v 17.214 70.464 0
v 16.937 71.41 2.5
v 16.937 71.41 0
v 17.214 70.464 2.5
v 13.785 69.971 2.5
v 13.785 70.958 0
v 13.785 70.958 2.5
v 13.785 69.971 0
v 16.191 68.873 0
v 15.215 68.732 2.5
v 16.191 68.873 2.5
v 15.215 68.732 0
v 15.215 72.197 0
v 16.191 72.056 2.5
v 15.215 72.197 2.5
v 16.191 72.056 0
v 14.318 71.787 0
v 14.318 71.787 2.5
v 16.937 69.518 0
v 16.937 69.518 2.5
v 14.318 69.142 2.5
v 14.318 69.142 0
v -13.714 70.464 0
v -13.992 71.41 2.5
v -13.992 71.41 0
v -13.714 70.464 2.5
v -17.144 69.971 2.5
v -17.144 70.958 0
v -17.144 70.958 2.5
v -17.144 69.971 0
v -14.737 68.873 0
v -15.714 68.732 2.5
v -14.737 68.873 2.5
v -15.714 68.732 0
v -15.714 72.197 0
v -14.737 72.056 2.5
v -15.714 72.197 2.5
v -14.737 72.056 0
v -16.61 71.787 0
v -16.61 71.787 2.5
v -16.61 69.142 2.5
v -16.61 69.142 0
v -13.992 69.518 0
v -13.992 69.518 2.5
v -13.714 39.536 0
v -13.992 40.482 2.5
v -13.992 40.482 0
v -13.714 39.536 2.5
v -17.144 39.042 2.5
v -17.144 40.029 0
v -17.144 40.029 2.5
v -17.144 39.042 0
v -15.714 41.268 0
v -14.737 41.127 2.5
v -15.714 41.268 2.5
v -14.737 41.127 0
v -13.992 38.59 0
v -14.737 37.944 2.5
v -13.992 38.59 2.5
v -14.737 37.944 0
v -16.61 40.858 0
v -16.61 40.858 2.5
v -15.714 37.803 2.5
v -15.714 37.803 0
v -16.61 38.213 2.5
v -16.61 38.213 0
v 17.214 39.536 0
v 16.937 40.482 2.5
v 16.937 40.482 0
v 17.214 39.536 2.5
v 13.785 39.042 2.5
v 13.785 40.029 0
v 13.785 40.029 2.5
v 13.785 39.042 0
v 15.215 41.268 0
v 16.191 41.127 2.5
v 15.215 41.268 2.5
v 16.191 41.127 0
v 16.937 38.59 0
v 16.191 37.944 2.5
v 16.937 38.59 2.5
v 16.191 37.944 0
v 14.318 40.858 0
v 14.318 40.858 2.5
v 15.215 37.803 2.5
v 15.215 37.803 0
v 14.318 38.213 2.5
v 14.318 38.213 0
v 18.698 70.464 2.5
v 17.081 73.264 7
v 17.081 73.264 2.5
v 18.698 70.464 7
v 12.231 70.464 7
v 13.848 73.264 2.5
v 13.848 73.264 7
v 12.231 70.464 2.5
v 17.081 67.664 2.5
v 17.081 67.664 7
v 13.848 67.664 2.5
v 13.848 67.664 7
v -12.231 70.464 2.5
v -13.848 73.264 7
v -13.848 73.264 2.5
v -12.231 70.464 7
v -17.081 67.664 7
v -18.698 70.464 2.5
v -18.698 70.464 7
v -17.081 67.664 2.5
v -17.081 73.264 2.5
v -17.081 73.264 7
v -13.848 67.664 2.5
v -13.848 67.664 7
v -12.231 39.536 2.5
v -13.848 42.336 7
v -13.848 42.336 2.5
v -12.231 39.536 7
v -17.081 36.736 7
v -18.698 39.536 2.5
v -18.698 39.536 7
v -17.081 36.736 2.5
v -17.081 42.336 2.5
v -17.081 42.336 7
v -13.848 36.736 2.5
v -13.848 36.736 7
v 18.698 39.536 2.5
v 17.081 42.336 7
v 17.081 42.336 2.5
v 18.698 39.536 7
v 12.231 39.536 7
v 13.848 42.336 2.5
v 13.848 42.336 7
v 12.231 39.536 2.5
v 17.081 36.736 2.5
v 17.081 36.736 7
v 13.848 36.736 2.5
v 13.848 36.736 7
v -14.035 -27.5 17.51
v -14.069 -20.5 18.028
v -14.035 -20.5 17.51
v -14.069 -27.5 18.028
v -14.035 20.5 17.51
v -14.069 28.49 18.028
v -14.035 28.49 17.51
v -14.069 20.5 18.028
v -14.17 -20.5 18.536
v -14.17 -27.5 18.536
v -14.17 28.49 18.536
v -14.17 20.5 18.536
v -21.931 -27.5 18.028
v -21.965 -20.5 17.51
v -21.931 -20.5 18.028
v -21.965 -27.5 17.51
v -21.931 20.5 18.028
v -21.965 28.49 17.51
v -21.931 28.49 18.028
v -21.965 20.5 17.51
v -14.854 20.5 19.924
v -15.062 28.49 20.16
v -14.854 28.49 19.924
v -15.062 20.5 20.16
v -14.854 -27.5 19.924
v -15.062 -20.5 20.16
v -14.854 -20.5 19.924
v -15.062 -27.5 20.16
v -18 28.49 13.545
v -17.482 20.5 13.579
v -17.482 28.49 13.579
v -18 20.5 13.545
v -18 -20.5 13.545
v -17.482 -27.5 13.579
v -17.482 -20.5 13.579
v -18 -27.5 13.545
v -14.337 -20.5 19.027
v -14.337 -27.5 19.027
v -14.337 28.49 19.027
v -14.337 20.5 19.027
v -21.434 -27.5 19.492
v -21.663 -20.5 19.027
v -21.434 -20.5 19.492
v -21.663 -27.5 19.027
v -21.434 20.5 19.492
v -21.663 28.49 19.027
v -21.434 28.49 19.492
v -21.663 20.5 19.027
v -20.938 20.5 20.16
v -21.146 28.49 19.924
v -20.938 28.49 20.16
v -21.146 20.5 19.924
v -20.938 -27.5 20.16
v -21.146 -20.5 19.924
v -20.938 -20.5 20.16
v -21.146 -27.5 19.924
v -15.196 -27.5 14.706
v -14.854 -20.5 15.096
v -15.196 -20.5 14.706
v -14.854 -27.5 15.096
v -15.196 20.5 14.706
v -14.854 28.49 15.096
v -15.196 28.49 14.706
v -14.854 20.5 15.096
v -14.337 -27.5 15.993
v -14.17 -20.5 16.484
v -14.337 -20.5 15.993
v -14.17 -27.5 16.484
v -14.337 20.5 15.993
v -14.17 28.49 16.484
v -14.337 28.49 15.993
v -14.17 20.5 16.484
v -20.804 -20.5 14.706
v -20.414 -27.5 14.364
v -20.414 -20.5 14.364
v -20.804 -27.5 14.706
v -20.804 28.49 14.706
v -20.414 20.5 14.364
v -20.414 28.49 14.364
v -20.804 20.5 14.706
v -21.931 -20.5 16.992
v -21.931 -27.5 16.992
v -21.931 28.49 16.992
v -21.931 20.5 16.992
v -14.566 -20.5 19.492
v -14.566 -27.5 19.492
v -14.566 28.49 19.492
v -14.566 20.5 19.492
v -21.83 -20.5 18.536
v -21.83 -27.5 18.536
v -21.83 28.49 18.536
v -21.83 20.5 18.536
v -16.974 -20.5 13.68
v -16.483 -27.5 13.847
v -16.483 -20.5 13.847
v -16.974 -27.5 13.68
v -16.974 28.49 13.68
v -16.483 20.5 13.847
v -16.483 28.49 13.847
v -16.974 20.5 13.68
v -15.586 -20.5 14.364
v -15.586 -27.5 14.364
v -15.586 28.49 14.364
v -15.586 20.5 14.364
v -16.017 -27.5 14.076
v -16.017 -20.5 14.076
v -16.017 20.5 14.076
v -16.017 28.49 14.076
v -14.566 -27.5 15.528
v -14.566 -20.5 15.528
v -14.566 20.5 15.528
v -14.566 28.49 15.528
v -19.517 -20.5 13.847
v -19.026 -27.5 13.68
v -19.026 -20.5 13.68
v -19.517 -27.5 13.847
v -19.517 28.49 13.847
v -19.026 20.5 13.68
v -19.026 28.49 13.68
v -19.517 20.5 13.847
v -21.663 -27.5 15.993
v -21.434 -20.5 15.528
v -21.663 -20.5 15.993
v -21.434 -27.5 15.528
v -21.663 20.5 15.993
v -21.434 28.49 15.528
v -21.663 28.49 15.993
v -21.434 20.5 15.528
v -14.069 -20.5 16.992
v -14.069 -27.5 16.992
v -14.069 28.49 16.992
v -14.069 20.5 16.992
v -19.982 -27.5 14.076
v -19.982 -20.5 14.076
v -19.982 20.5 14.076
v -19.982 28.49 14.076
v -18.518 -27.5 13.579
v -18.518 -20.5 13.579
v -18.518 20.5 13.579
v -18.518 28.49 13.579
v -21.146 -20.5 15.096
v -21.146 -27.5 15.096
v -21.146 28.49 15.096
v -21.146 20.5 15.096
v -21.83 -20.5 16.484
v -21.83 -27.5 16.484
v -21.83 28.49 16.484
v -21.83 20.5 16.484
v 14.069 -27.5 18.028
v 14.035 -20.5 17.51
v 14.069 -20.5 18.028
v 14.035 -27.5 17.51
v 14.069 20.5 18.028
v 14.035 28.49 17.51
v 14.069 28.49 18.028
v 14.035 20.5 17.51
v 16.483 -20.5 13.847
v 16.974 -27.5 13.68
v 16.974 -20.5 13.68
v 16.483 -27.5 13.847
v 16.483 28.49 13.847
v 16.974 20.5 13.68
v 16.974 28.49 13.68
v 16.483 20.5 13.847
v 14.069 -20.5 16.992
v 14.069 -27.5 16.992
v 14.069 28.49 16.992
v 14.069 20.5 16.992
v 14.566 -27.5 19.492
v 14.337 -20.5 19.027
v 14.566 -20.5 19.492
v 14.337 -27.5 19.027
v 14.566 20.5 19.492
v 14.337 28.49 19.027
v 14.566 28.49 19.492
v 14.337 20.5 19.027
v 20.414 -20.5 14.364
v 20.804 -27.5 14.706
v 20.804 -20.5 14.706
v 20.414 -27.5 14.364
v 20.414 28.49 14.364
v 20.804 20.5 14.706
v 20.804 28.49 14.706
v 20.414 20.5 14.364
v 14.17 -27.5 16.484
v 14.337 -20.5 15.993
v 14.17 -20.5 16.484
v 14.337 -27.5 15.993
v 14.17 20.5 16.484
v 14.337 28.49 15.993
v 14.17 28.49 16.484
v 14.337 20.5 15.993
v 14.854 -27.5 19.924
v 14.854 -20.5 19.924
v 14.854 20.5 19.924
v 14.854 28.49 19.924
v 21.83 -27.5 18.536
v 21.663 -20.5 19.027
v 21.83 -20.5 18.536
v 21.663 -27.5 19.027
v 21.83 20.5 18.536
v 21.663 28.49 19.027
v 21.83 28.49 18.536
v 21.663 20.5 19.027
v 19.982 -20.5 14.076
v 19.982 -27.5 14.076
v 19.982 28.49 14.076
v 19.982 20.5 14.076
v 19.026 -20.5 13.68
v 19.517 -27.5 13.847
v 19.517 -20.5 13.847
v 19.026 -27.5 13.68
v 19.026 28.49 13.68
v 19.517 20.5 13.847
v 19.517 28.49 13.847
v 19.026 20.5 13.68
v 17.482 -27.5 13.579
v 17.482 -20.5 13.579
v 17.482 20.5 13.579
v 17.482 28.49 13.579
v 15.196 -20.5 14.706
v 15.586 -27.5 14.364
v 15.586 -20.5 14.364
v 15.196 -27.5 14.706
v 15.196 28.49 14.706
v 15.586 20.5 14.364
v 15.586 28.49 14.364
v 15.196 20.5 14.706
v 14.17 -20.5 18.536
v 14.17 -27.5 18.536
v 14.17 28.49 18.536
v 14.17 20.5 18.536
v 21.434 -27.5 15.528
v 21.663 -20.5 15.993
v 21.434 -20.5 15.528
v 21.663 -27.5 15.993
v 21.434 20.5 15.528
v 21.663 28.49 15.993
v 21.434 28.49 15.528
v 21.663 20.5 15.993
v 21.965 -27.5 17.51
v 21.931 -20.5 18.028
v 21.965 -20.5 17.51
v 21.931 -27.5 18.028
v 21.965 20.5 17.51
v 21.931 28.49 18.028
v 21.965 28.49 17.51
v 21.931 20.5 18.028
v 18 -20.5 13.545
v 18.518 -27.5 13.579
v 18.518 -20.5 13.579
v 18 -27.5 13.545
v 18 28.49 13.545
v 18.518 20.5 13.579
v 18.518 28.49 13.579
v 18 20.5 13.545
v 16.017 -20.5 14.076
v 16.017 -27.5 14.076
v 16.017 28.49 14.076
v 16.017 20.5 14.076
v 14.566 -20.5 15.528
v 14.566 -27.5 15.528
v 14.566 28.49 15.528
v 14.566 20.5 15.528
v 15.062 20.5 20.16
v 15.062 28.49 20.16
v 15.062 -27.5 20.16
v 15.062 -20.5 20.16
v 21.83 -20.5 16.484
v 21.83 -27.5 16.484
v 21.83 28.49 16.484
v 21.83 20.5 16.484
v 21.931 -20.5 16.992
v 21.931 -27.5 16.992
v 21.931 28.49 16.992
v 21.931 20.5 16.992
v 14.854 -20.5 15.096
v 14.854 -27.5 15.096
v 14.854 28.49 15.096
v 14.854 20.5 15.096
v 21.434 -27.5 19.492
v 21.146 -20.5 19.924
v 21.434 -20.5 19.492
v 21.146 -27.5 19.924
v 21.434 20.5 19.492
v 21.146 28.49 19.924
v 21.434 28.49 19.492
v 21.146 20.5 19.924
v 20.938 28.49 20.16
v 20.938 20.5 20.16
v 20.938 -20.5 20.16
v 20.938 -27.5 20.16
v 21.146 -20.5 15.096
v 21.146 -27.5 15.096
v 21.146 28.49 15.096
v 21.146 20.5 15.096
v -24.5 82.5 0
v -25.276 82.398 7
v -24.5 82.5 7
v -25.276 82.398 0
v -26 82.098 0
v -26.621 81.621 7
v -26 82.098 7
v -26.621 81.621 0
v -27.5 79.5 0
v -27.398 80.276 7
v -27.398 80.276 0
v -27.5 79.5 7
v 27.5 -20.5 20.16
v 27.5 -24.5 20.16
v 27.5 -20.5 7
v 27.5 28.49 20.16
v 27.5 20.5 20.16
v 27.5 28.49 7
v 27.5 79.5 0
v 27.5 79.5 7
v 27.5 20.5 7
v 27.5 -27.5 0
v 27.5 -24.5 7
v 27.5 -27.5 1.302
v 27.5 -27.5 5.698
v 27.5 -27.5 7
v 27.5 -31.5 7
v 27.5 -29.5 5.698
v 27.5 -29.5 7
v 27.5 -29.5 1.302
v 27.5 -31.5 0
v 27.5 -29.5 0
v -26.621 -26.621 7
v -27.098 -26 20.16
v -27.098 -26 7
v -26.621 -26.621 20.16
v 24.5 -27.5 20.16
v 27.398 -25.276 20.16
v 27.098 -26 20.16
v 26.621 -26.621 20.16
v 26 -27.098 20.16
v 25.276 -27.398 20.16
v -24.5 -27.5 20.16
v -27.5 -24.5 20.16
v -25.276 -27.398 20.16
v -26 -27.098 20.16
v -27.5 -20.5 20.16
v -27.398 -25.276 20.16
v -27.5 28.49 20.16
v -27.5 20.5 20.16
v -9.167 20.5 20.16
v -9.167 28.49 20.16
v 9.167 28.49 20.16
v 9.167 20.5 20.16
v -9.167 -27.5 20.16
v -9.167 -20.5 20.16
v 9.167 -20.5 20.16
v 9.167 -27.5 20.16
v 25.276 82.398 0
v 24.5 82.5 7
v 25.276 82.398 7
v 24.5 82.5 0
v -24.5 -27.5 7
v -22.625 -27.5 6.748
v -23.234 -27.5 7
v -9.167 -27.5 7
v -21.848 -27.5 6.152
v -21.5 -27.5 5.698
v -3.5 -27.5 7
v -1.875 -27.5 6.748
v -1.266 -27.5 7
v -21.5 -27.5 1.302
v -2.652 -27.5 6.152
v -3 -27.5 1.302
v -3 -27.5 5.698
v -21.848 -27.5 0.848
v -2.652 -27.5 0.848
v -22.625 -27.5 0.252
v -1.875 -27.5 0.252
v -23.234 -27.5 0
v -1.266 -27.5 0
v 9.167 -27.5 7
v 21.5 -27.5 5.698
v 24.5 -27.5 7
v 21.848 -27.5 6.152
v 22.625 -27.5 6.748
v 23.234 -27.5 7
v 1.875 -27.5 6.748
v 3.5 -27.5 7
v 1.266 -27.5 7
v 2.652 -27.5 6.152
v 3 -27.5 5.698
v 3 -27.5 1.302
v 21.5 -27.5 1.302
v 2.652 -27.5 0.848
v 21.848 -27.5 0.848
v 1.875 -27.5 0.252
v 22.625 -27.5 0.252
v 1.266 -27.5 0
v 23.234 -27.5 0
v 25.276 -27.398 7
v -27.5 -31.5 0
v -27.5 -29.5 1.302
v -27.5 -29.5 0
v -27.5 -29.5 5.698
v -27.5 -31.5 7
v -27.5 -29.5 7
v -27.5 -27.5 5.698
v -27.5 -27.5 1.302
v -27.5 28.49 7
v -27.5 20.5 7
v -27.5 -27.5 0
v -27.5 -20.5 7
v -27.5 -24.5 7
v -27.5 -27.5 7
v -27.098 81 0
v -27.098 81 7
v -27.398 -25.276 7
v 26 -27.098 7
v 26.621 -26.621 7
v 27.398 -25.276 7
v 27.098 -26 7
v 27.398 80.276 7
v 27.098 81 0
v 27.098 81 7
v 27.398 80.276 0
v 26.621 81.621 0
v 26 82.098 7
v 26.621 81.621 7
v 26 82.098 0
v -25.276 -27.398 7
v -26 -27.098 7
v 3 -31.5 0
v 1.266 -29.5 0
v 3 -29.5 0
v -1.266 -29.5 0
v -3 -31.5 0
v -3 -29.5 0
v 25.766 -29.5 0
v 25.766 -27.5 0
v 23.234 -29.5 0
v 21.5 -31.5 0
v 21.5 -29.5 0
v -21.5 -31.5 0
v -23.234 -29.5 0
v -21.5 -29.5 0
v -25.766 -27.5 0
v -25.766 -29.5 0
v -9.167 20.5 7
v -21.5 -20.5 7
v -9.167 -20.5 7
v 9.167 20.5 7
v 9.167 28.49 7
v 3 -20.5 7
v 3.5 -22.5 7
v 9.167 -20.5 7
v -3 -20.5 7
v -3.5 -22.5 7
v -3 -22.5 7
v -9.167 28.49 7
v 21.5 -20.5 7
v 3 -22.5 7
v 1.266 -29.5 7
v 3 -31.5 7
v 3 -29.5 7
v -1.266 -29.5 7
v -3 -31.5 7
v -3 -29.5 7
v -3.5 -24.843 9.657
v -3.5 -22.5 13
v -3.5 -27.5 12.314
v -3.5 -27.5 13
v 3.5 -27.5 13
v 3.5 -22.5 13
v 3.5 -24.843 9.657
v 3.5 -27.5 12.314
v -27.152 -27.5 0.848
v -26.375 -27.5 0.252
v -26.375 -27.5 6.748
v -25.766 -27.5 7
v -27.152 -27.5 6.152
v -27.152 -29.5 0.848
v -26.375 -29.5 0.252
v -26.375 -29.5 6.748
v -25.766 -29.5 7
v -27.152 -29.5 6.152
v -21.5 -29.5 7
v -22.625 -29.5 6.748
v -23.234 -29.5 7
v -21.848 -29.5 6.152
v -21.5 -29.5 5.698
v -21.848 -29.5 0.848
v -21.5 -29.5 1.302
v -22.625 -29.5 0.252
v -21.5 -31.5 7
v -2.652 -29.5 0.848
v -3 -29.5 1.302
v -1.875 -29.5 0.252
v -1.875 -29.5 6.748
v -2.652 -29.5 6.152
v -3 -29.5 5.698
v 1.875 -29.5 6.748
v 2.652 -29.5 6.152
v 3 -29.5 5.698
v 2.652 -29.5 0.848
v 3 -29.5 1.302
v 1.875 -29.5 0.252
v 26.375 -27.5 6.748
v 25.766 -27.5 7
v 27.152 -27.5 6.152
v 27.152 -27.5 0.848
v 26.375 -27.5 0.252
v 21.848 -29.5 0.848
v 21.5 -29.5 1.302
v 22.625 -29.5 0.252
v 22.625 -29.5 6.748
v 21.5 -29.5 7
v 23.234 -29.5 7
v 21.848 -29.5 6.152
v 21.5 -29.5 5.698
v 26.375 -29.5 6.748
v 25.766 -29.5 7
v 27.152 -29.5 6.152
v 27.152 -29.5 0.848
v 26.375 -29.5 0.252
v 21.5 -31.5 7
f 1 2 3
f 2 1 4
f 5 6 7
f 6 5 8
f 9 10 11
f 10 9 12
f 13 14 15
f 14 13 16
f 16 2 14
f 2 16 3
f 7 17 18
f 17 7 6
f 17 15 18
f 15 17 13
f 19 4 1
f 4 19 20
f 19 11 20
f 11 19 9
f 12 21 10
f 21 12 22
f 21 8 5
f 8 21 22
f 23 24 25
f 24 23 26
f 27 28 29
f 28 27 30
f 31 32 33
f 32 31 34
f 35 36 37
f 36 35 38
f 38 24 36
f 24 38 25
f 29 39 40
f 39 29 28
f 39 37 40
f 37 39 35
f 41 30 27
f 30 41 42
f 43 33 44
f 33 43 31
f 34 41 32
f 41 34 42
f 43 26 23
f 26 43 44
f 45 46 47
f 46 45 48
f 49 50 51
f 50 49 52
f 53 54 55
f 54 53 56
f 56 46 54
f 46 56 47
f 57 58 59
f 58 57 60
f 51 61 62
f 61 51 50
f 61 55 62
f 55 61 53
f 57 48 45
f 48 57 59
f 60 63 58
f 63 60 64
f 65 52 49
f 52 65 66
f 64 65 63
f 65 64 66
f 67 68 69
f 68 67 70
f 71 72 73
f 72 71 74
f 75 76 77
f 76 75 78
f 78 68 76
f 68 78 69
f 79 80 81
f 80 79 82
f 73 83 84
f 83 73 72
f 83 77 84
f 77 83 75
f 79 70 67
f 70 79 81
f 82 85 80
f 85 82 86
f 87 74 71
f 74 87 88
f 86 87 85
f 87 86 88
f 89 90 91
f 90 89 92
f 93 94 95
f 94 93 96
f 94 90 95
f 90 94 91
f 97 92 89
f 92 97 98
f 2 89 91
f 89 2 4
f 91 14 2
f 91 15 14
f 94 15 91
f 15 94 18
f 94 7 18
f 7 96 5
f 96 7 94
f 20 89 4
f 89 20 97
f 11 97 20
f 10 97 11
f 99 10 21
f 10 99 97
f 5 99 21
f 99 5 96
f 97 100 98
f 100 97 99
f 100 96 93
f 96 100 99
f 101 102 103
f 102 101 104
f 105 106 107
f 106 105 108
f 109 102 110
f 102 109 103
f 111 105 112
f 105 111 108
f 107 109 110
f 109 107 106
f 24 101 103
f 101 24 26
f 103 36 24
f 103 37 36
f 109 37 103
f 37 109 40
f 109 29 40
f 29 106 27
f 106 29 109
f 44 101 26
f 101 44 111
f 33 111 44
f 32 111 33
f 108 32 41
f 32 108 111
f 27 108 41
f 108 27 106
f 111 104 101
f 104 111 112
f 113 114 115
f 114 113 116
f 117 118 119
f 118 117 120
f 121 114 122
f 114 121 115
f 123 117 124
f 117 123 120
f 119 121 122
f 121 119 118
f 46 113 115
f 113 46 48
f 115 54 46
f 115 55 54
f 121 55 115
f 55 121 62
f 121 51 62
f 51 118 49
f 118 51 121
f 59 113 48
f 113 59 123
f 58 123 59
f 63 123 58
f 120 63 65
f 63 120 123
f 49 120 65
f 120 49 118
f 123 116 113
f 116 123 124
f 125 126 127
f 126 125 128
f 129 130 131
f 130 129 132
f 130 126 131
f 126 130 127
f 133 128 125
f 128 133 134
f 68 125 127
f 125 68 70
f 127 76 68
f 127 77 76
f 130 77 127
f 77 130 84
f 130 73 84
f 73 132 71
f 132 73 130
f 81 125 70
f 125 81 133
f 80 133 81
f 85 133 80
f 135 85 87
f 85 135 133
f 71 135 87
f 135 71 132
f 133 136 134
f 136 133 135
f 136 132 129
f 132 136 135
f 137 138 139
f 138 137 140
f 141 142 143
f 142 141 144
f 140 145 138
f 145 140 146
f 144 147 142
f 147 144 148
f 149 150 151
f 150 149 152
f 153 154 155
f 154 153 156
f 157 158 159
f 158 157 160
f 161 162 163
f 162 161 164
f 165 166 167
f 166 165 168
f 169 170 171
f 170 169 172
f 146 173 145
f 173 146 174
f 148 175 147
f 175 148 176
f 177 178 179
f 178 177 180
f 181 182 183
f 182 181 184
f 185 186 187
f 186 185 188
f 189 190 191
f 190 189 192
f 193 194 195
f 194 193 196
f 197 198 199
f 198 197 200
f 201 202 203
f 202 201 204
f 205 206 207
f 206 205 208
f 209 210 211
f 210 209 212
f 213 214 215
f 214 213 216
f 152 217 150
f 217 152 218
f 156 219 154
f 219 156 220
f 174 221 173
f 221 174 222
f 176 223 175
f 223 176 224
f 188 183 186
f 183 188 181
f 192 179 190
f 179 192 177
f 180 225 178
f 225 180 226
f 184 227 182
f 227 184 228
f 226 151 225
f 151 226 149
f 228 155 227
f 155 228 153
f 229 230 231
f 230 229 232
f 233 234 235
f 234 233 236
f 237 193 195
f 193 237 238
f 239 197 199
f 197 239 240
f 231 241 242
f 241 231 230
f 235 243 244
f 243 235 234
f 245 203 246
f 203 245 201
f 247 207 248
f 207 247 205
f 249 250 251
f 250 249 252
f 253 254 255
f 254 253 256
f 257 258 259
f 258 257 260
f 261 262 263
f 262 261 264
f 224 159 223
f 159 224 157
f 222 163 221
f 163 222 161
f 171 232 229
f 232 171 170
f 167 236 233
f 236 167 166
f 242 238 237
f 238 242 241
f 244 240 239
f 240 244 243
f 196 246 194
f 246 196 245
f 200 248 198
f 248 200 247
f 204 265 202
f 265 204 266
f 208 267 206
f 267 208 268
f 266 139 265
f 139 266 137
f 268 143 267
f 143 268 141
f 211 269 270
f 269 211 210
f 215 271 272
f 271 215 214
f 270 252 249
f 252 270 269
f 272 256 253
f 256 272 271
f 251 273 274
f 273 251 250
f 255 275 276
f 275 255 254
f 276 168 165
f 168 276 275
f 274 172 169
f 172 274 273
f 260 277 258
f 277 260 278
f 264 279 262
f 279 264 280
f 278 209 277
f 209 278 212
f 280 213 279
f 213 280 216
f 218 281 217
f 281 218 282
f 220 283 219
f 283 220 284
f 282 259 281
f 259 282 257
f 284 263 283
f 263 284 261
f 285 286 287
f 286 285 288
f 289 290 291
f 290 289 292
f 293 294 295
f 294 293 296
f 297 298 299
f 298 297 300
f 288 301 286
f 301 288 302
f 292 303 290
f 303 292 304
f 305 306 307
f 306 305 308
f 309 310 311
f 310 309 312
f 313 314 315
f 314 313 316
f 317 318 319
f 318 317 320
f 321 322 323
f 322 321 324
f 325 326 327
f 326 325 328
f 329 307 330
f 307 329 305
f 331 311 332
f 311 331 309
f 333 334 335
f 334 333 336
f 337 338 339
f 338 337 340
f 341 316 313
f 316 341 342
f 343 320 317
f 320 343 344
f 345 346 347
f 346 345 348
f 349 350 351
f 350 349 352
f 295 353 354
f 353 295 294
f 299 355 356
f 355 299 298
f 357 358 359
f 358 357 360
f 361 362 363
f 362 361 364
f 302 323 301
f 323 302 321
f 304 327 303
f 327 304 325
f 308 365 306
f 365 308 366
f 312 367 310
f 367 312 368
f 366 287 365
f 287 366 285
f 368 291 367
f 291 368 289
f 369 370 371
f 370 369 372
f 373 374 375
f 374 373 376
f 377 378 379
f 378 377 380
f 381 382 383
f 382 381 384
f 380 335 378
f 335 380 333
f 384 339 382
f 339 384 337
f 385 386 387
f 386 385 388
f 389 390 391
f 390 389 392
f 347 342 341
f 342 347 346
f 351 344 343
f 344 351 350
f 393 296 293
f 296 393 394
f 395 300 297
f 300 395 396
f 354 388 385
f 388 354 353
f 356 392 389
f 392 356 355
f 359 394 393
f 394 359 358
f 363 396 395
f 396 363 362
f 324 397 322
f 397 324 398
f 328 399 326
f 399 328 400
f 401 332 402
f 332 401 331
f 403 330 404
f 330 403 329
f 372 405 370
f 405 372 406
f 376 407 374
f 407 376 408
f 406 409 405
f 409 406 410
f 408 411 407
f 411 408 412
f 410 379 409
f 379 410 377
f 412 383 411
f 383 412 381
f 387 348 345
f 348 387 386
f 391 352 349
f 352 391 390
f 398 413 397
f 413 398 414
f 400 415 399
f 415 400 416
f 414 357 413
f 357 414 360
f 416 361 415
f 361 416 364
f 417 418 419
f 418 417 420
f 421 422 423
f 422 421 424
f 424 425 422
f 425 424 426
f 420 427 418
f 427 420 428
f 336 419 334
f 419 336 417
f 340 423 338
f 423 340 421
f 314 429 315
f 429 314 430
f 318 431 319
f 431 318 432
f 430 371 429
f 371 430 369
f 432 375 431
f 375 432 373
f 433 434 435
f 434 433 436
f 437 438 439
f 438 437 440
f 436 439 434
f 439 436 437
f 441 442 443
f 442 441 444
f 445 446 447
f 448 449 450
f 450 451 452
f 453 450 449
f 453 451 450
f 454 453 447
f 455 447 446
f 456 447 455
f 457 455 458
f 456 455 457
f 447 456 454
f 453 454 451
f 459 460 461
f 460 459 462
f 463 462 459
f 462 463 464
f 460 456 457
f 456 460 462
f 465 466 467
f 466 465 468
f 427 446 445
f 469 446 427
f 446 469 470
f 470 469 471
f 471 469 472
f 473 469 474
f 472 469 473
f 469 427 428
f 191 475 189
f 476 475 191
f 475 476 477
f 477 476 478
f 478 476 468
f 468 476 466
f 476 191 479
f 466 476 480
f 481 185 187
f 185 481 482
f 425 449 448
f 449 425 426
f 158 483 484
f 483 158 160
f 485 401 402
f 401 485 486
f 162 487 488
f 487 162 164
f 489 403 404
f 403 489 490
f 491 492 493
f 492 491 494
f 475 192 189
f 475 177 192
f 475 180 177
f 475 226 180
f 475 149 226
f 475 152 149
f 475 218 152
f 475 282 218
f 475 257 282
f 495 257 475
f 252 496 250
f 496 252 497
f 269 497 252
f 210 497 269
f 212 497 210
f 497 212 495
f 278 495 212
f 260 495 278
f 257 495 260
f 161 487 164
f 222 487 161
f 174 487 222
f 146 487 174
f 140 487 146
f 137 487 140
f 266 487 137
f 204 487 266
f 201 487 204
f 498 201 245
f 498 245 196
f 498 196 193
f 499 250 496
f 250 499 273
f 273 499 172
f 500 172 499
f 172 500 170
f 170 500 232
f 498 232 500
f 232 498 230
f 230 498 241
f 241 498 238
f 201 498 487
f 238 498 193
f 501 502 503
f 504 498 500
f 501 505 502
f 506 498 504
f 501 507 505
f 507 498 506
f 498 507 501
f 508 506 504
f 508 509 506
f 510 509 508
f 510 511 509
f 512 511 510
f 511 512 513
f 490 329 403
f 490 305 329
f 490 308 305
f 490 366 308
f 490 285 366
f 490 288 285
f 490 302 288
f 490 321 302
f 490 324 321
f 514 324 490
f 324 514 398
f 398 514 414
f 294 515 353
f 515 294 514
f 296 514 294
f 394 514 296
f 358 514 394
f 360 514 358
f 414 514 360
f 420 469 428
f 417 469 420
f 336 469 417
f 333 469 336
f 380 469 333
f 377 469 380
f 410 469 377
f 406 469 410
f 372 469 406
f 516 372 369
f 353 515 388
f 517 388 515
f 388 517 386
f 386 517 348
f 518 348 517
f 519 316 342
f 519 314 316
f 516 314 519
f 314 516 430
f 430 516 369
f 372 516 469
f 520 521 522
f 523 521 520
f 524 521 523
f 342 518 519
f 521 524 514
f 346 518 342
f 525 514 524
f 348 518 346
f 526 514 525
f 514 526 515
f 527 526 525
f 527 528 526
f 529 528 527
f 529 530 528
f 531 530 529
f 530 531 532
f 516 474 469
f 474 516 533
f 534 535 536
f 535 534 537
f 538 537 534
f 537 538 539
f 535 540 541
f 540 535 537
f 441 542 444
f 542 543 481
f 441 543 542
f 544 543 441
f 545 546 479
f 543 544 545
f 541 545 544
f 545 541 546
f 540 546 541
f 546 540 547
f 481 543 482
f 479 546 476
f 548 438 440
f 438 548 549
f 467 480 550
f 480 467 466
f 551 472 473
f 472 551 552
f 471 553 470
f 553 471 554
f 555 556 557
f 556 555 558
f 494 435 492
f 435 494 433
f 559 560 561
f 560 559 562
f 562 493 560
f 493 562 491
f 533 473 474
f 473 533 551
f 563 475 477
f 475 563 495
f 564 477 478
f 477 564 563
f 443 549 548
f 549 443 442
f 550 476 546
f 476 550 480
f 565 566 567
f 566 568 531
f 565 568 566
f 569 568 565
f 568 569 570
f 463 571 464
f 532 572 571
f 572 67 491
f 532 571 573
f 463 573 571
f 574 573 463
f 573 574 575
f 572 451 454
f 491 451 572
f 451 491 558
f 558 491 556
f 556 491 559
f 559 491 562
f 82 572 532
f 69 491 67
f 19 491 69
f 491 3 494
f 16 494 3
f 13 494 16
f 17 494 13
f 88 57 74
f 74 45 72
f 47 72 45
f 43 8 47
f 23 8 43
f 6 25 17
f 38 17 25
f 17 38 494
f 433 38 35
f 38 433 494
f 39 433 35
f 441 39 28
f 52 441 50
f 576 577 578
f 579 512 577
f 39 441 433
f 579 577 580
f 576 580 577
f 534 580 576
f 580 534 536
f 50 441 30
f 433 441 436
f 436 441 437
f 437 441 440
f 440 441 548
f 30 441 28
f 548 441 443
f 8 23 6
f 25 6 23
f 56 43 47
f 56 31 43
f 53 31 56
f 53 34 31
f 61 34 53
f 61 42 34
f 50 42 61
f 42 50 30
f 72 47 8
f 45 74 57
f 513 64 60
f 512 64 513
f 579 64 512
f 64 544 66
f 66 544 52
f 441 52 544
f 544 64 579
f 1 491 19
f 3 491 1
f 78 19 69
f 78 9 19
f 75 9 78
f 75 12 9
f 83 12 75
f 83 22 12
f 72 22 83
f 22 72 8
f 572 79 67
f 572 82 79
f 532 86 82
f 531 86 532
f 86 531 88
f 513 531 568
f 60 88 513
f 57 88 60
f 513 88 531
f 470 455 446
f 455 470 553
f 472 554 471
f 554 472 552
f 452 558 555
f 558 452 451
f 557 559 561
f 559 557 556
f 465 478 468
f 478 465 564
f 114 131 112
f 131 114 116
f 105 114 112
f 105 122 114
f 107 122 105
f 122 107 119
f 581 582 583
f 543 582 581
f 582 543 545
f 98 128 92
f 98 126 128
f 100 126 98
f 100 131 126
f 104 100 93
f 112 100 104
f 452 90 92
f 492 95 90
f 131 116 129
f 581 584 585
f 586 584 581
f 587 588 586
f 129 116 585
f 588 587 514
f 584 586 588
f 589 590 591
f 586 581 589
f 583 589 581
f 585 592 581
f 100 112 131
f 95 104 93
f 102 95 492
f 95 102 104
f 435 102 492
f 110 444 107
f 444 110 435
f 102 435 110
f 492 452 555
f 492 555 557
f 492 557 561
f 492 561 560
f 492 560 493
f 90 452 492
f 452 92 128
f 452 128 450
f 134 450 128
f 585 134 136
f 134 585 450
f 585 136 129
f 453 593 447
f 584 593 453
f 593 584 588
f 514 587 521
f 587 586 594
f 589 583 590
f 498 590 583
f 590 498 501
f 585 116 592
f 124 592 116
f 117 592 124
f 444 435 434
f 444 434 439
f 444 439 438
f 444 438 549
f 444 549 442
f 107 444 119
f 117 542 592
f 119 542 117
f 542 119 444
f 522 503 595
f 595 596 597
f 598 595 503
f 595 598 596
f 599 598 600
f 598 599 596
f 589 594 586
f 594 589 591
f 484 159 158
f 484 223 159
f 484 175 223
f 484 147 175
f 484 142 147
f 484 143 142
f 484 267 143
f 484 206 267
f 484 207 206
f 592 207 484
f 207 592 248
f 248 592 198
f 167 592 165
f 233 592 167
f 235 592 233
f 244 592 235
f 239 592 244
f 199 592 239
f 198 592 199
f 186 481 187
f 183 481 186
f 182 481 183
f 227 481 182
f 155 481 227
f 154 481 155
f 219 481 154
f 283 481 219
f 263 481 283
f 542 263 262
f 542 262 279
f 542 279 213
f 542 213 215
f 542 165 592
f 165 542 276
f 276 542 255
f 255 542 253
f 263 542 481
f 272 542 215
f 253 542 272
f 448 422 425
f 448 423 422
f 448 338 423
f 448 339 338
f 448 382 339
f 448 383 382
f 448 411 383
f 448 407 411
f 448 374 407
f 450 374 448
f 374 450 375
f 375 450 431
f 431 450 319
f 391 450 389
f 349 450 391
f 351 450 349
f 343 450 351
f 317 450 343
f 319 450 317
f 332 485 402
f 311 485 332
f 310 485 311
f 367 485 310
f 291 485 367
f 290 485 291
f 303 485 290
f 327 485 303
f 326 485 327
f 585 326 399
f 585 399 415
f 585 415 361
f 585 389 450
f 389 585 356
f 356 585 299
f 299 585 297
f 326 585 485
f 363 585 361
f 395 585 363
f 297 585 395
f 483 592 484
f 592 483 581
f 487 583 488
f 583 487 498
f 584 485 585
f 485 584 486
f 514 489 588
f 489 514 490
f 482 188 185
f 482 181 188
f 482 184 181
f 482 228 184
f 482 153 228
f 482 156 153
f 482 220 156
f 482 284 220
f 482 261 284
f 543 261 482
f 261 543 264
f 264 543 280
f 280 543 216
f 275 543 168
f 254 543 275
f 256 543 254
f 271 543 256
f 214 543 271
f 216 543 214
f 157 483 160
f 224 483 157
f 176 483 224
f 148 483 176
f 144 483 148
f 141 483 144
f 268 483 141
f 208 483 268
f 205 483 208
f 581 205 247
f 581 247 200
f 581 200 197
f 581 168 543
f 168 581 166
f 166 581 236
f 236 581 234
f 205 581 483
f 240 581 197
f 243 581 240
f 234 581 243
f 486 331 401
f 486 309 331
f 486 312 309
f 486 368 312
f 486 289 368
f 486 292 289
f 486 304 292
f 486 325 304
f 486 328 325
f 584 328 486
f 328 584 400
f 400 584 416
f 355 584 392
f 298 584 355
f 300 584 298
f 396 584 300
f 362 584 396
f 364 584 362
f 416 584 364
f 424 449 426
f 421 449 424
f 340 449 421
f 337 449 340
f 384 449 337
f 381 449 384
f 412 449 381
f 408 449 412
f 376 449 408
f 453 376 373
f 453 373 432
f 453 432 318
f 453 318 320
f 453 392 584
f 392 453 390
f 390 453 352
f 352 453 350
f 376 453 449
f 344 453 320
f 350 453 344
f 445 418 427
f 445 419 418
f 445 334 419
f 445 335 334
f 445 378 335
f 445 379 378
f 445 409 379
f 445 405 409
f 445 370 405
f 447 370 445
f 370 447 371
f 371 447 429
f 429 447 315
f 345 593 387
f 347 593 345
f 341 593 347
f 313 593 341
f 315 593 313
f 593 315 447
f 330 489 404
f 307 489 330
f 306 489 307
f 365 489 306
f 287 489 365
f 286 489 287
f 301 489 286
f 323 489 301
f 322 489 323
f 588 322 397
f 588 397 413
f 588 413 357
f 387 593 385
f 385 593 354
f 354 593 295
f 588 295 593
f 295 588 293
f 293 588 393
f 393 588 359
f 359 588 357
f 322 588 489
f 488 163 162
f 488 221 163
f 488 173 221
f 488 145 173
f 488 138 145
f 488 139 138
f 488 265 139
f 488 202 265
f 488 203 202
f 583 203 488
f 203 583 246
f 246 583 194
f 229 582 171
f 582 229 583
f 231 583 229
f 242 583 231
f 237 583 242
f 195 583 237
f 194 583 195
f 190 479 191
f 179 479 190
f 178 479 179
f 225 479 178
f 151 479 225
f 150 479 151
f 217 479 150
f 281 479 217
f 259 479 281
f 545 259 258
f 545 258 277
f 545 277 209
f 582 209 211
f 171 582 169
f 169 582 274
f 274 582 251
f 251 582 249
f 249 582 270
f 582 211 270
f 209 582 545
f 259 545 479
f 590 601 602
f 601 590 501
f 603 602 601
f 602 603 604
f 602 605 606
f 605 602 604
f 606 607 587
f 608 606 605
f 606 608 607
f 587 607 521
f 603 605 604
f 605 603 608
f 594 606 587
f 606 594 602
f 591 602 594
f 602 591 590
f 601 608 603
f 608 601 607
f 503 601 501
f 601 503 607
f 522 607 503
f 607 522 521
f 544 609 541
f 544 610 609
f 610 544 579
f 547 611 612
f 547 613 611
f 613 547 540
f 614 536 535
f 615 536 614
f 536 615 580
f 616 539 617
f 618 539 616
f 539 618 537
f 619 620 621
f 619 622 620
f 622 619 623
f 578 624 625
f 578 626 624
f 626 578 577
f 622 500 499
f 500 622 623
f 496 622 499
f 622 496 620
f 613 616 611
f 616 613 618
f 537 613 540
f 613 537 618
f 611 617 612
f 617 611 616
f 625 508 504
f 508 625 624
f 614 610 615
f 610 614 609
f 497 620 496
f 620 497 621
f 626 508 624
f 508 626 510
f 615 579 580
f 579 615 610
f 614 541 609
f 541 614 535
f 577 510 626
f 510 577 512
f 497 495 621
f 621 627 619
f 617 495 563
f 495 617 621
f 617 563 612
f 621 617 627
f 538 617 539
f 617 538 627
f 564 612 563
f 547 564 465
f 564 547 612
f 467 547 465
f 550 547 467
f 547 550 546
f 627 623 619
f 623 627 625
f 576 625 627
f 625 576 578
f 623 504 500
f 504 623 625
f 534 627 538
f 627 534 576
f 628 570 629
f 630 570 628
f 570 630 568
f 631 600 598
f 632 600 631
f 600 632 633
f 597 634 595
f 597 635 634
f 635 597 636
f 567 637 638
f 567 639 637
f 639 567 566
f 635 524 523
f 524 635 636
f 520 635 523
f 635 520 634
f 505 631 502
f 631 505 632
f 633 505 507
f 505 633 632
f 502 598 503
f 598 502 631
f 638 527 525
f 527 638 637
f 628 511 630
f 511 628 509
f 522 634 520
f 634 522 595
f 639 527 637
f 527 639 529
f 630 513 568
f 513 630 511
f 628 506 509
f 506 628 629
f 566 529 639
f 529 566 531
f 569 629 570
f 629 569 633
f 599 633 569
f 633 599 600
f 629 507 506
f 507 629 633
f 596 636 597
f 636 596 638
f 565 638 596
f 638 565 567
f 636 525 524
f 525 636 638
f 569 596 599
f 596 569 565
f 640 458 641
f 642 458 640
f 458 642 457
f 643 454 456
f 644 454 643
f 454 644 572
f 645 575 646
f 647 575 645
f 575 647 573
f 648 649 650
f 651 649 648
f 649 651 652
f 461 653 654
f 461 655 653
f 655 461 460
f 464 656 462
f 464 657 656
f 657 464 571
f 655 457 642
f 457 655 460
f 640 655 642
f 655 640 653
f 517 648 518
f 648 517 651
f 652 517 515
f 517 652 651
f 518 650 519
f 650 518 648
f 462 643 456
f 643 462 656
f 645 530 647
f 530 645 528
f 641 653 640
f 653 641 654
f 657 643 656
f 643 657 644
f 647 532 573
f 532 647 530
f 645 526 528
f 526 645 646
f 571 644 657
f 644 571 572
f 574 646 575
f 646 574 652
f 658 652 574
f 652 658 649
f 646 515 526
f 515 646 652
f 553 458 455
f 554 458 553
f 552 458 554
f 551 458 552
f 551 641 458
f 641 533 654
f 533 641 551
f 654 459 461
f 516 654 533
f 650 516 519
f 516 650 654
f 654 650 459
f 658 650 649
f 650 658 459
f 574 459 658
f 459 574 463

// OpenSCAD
// file: lib/parameters.scad
// Parameters shared between modules
Base_th = 2;
Beam_width = 15;
Wiggle = 0.25;
Fat_beam_width = Beam_width + Wiggle;
Beam_length = 400;
Wall_th = 2.5;
Min_beam_width = 12.5;
Max_beam_width = 17.5;
Zip_th = 2;
Zip_h = Zip_th + Max_beam_width - Min_beam_width;
Zip_w = 5.0;
Nema17_cube_width          = 42.43;
Nema17_screw_hole_width    = 43.74; // Opposite corner screws
Nema17_ring_diameter       = 22;
Nema17_cube_height         = 39.36;
Nema17_shaft_height        = 63.65;
Nema17_ring_height         = 2;
Nema17_shaft_radius        = 5/2;
b608_outer_dia = 22.2;
b608_width = 7.05;
b608_bore_r = 4;
b608_vgroove_big_r = b608_outer_dia/2 + 2;
b608_vgroove_small_r = b608_outer_dia/2;
b608_ugroove_big_r = b608_vgroove_big_r;
b608_ugroove_small_r = b608_vgroove_small_r;
Gap_between_sandwich_and_plate = 1.5 + Base_th; // 1.5 mm for wiggle
Motor_bracket_flerp_r = 6;
Motor_bracket_flerp = 14;
Motor_bracket_cw = Nema17_cube_width + 6;
Motor_bracket_att_ang = 50;
Mounting_screw_d = 3.5;
Mounting_screw_head_d = 14;
Spool_outer_wall_th = 4;

// Corner clamp parameters
Cc_l1 = (Fat_beam_width+2*Wall_th)*2*sqrt(3);
Cc_rad_b = 4;
Cc_action_point_from_mid = Cc_l1/sqrt(3)-2*Cc_rad_b-7;
Cc_plastic_length = sqrt(Cc_action_point_from_mid*Cc_action_point_from_mid
                       - (Cc_action_point_from_mid/2)*(Cc_action_point_from_mid/2));
Eyelet_extra_dist = 0.75;
Eyelet_diameter = 4.30;
Move_d_bearings_inwards = -2;

// The distance between the two action points on the mover
Sidelength = Beam_length + 2*Cc_plastic_length;

/////// Gear parameters ////////////
Circular_pitch = 262;
Motor_teeth = 10;
Gear_height = 21.4-3;
Motor_pitch                      = (Motor_teeth*Circular_pitch/360);
Motor_pitch_diametrial           = Motor_teeth/(2*Motor_pitch);
Motor_outer_radius               = Motor_pitch + 1/Motor_pitch_diametrial;
Spool_teeth = 100;
Spool_r = 75;
Spool_height = 8;
Spool_pitch                      = (Spool_teeth*Circular_pitch/360);
Spool_pitch_diametrial           = Spool_teeth/(2*Spool_pitch);
Spool_outer_radius               = Spool_pitch + 1/Spool_pitch_diametrial;
Sep_disc_radius = (161.83+1)/2; // Made to match 255 teeth gt2 pulley + 1
Motor_bracket_depth = Gear_height+1+7+Nema17_ring_height+1+Gap_between_sandwich_and_plate;
Spool_core_flerp0 = 16+3;

/////// Lineroller parameters ////////////
b623_width  = 4;
b623_bore_r = 3/2;
b623_vgroove_big_r = 12/2;
b623_vgroove_small_r = 10/2;
b623_outer_dia = 10;
b623_vgroove_room_to_grow_r = 1.1;
b608_vgroove_room_to_grow_r = 1.1;
b623_flange_dia = 11.5;
b623_flange_room_to_grow_r = 0.5;

Depth_of_roller_base = 18;
Roller_flerp = 6;
Roller_l = 42;
Roller_fl = (Roller_l - Depth_of_roller_base)/2;

Line_roller_wall_th = 5;

Line_roller_ABC_winch_h =  Gap_between_sandwich_and_plate
                           + Sep_disc_radius
                           - Spool_r
                           + Depth_of_roller_base/2
                           + b608_vgroove_small_r;

Shear_line_roller_double_bearings = 20;

Ptfe_r = 2.1;
Roller_base_r = 8;
Screw_h = 2;
Screw_head_h = 2;
M3_screw_head_d = 5.8;
Spool_center_bearing_wall_th = 5;
Corner_clamp_bearings_center_to_center = max(15, (b623_vgroove_big_r + b623_vgroove_room_to_grow_r)*2);
Anchor_bearings_center_to_center = Corner_clamp_bearings_center_to_center + b623_outer_dia;

//// Lineroller anchor parameters /////

Back_bearing_x = b623_vgroove_big_r + 1.5;
Front_bearing_x = -b623_vgroove_big_r - 5;
Move_tower = -12.2;
Lower_bearing_z = 13;
Higher_bearing_z = Lower_bearing_z + Corner_clamp_bearings_center_to_center;

//// Cable Clamp parameters /////
Bit_width = 12;
Cable_r=2.5;

// Belt drive parameters
GT2_belt_width = 6.5;
GT2_gear_height = GT2_belt_width + 2;
GT2_motor_gear_height = 16;
GT2_motor_gear_outer_dia = 16;
GT2_spool_gear_teeth = 255;
GT2_motor_gear_teeth = 20;
Torx_depth = GT2_gear_height/2;
Belt_roller_h = 56;
Belt_thickness = 1.4;

Belt_roller_space_between_walls = 2*b623_width + 0.8;
Belt_roller_wall_th = (Depth_of_roller_base - Belt_roller_space_between_walls)/2+2;
Belt_roller_top_adj_screw_x = Depth_of_roller_base/2-3.7;
Belt_roller_top_adj_screw_y = Belt_roller_space_between_walls/2+2;
Belt_roller_containing_cube_ywidth = Belt_roller_space_between_walls+8.5;
Belt_roller_containing_cube_xwidth = 14;
Belt_roller_insert_h = 18;

Sandwich_ABC_width = 2*(1+Spool_height) + GT2_gear_height;
Sandwich_D_width = 4*(1+Spool_height) + GT2_gear_height;
Spool_core_halve_width = 14.3;
Spool_core_impression_in_spool_cover = 0;
Spool_cover_bottom_th = 1.5;
Spool_cover_shoulder = 2;
Spool_core_cover_adj = Spool_cover_shoulder+Spool_cover_bottom_th-Spool_core_impression_in_spool_cover;
Spool_core_tot_length = 136.458;
Spool_cover_outer_r = Sep_disc_radius + 2;
Gap_between_sep_disc_and_spool_cover = 0.5;

Smooth_rod_length_ABC = Sandwich_ABC_width + 2*(Spool_core_halve_width-Spool_core_impression_in_spool_cover + Spool_cover_bottom_th + Spool_cover_shoulder);
Smooth_rod_length_D = Sandwich_D_width + 2*(Spool_core_halve_width-Spool_core_impression_in_spool_cover + Spool_cover_bottom_th + Spool_cover_shoulder);
echo("Smooth_rod_length_ABC", Smooth_rod_length_ABC);
echo("Smooth_rod_length_D", Smooth_rod_length_D);

Spool_cover_tot_height = Spool_cover_bottom_th+Spool_cover_shoulder+1+Spool_height;
Spool_cover_D_left_tot_height = Spool_cover_shoulder+Spool_cover_bottom_th+1+Spool_height+1+Spool_height;

spd = Spool_height+GT2_gear_height;
// Horizontal_deflector_cube_y_size must be exact this number
// because we want to deflect AB-lines
// 60 degrees on the ceiling unit, and we want to put two
// deflectors in a row and get a distance between bearings
// that maintain the distance d when deflecting 60 degrees
Horizontal_deflector_cube_y_size = (2/sqrt(3))*spd;

Belt_roller_bearing_xpos = Sep_disc_radius + b623_outer_dia/2+Belt_thickness;


// Top plate parameters needed for layout slicer
Yshift_top_plate = -297.8;

Pen_holder_w = 55;
Pen_holder_rail_w = 36;
Pen_holder_bottom_th = 7;
// main file
include <lib/parameters.scad>
use <lib/util.scad>


pen_holder_stationary_part();
module pen_holder_stationary_part(){
  w = Pen_holder_w;
  rail_w = Pen_holder_rail_w;
  bottom_th = Pen_holder_bottom_th;
  full_th = bottom_th+13.16;
  leg_th = 7;
  difference(){
    translate([-w/2,-w/2,0])
      rounded_cube2([w,2*w,full_th], r=3, $fn=6*4);
    translate([-(w+2)/2, (w+2)/2-0.01, bottom_th])
      cube([w+2, w+2, full_th]);
    translate([-(w/3)/2, -(w+2)/2, bottom_th])
      cube([w/3, w+2, full_th]);
    translate([-(w+2)/2, -(w-2*leg_th)/2, bottom_th])
      cube([w+2, w-2*leg_th, full_th]);
    translate([0,w,-1])
      Nema17_screw_holes(3.5, bottom_th+2, $fs=1);
    translate([0,w,2.5])
      Nema17_screw_translate()
        M3_nut(10);
    for(k=[0,1]) mirror([k,0,0])
      translate([-rail_w/2, 0, full_th-2.65])
        rotate([90,0,0])
          cylinder(d=7.93, h=w+2, center=true, $fn=2*24);
  }
  translate([-7/2, -w/2, 0])
    difference(){
      cube([7, 5, bottom_th+6]);
      translate([0,-3,bottom_th-3])
        rotate([45,0,0])
          translate([-0.5,0,0])
            cube([8,8,6]);
    }
  for(k=[0,(w-6)/2, w-6]) translate([k,0,0])
      translate([-w/2, -w/2-4, 0])
        difference(){
          cube([6,11,bottom_th]);
          translate([3, 4, bottom_th/2])
            rotate([90,0,0])
              ring(d1=10, d2=bottom_th+0.5, h=2, $fn=24);
        }
}
